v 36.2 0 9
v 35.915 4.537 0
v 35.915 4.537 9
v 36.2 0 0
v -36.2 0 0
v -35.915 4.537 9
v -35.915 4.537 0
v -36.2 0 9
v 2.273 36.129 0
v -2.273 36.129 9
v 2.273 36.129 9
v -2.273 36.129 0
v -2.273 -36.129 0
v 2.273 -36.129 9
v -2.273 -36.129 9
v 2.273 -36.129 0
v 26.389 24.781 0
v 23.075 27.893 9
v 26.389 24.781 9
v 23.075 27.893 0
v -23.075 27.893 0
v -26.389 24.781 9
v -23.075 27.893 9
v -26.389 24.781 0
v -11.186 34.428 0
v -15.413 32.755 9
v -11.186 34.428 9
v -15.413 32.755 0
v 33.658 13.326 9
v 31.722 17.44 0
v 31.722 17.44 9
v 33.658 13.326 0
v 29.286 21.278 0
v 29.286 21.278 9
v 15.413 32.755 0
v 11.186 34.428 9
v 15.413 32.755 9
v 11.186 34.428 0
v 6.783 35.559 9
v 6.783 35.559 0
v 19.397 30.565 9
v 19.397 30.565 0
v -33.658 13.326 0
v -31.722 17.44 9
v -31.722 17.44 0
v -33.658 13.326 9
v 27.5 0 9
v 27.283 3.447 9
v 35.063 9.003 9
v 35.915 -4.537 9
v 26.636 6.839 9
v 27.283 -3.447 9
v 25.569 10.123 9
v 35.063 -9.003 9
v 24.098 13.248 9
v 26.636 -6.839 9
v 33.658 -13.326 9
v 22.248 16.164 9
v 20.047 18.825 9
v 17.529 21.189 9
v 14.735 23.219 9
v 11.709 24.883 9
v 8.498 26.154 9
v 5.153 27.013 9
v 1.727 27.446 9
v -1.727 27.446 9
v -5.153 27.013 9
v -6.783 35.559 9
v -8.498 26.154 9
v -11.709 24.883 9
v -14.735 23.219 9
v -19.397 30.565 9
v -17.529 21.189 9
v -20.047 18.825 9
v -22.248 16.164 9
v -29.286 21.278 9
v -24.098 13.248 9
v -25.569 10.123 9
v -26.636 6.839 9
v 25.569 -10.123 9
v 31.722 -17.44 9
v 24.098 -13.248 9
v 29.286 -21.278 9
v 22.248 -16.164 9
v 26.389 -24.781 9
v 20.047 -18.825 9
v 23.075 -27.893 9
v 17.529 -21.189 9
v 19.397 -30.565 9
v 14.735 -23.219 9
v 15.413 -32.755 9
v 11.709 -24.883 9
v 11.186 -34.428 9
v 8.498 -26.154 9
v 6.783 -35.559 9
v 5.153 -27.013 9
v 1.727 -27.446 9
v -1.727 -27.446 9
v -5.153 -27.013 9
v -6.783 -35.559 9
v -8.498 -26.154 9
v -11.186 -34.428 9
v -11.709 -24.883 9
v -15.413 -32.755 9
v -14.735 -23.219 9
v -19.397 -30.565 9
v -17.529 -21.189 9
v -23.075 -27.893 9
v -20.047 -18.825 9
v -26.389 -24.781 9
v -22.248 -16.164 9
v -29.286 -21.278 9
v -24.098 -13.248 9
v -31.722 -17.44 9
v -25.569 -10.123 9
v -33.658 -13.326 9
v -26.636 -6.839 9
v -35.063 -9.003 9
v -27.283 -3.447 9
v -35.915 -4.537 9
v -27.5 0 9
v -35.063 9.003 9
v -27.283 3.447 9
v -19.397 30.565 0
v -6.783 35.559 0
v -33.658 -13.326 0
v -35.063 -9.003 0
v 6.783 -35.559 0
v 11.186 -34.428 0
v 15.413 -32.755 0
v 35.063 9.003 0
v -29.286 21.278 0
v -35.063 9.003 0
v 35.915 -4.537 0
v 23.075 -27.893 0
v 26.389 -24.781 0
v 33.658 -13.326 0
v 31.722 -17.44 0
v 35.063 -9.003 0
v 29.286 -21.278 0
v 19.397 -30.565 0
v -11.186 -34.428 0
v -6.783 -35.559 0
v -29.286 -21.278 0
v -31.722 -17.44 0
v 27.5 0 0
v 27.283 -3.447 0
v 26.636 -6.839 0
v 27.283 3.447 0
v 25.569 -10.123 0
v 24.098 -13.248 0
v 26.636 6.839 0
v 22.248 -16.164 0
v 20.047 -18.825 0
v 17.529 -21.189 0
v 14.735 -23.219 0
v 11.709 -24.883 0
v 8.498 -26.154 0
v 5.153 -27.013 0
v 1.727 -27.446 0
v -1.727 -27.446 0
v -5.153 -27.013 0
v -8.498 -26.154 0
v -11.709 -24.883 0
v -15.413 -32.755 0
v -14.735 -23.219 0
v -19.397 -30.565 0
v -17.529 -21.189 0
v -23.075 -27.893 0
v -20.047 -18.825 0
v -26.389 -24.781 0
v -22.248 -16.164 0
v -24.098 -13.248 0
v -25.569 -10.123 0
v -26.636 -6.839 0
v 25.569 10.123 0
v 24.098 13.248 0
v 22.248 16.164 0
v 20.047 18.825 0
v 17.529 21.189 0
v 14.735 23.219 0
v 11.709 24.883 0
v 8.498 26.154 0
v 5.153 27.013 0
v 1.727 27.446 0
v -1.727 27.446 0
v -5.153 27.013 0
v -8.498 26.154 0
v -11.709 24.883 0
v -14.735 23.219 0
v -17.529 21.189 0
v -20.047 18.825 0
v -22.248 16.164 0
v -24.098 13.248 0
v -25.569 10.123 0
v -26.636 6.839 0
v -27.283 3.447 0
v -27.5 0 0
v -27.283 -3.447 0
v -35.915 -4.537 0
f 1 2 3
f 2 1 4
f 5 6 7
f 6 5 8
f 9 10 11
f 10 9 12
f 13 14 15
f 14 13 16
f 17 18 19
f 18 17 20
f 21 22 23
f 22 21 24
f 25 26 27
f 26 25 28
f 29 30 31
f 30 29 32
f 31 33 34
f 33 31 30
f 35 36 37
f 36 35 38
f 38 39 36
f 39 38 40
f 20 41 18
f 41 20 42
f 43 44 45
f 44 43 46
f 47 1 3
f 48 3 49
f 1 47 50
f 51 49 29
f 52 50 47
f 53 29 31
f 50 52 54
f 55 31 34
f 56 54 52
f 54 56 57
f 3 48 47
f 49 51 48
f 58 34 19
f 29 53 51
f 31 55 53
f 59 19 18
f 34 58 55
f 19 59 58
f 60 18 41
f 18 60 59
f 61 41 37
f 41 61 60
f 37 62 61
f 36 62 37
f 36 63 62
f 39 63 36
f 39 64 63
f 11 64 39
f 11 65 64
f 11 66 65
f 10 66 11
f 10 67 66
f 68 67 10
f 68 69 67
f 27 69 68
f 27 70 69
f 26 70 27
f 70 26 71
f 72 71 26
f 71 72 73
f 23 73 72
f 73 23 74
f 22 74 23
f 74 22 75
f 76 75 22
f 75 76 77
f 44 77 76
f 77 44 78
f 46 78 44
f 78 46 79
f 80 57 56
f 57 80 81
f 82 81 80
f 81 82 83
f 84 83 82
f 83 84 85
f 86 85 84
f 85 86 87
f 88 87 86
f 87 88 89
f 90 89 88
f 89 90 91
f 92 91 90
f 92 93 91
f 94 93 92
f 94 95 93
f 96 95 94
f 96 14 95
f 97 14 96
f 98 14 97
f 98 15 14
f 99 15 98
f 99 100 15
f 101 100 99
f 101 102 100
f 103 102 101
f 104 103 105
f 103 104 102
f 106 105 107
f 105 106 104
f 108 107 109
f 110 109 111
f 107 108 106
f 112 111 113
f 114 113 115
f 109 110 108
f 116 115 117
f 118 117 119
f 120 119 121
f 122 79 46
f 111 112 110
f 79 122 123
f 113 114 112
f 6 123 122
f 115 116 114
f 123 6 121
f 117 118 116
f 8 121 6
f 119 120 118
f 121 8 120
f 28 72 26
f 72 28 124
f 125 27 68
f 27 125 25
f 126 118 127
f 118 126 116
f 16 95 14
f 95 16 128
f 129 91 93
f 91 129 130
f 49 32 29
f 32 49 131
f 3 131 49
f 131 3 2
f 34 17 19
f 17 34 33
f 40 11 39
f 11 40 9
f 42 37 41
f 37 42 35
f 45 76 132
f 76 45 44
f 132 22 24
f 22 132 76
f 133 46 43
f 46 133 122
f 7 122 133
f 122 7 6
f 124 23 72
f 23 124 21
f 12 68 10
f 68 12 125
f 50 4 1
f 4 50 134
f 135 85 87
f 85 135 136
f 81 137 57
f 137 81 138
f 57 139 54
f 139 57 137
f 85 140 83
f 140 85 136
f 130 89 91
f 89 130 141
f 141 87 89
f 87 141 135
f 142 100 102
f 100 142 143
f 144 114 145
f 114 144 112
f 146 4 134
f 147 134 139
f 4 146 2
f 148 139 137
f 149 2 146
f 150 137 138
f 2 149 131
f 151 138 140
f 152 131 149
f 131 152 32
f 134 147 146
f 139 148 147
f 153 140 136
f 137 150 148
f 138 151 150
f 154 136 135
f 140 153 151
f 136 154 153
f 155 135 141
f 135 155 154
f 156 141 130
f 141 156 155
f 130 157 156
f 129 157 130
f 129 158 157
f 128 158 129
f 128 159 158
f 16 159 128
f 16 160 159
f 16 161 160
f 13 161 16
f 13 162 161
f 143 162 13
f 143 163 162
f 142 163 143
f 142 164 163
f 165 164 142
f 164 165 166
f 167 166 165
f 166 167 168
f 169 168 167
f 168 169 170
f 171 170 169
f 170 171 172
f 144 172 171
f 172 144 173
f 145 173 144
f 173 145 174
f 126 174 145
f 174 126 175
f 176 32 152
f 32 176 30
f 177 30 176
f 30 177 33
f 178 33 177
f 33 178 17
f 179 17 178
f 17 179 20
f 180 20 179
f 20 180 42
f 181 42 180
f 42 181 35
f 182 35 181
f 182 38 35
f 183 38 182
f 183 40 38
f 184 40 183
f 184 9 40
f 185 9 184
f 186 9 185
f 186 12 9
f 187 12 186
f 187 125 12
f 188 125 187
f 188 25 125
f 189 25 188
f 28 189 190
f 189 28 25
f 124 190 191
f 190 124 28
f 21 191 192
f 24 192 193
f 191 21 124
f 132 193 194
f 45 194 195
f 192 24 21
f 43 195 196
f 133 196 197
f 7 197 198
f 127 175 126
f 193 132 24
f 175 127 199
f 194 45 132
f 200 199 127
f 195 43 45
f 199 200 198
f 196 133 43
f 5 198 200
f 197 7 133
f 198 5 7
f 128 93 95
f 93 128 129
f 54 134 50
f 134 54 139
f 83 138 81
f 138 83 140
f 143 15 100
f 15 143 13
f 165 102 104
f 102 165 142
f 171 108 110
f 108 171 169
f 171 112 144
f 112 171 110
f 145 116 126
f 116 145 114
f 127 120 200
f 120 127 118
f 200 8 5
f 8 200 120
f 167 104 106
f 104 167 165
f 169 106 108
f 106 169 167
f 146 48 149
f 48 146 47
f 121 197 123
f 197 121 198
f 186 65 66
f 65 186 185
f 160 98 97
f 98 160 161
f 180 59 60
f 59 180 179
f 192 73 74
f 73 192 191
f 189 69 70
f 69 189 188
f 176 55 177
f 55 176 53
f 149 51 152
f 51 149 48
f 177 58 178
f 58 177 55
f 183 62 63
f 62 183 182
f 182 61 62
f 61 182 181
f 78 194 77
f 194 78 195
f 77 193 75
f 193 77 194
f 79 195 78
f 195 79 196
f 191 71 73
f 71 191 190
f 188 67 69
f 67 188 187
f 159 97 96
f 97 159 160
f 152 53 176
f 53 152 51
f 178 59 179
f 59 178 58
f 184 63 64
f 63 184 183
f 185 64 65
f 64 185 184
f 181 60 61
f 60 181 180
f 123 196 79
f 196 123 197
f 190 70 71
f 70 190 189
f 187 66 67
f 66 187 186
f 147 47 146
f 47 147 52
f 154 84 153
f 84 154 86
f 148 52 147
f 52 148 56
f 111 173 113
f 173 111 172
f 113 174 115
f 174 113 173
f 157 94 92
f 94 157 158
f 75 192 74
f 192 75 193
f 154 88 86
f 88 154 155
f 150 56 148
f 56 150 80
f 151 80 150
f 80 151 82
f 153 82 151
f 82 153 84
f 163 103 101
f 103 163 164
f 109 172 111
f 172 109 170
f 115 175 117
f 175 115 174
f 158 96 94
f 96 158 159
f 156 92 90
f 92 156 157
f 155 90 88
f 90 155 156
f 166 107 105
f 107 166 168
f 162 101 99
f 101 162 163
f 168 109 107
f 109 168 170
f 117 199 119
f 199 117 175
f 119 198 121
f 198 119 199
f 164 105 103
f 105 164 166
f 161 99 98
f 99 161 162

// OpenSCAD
$fn = 50;


difference() {
	union() {
		translate(v = [0, 0, 0]) {
			rotate(a = [0, 0, 0]) {
				cylinder(h = 9, r = 36.2000000000);
			}
		}
	}
	union() {
		translate(v = [0, 0, 0]) {
			rotate(a = [0, 0, 0]) {
				cylinder(h = 9, r = 27.5000000000);
			}
		}
	}
}
